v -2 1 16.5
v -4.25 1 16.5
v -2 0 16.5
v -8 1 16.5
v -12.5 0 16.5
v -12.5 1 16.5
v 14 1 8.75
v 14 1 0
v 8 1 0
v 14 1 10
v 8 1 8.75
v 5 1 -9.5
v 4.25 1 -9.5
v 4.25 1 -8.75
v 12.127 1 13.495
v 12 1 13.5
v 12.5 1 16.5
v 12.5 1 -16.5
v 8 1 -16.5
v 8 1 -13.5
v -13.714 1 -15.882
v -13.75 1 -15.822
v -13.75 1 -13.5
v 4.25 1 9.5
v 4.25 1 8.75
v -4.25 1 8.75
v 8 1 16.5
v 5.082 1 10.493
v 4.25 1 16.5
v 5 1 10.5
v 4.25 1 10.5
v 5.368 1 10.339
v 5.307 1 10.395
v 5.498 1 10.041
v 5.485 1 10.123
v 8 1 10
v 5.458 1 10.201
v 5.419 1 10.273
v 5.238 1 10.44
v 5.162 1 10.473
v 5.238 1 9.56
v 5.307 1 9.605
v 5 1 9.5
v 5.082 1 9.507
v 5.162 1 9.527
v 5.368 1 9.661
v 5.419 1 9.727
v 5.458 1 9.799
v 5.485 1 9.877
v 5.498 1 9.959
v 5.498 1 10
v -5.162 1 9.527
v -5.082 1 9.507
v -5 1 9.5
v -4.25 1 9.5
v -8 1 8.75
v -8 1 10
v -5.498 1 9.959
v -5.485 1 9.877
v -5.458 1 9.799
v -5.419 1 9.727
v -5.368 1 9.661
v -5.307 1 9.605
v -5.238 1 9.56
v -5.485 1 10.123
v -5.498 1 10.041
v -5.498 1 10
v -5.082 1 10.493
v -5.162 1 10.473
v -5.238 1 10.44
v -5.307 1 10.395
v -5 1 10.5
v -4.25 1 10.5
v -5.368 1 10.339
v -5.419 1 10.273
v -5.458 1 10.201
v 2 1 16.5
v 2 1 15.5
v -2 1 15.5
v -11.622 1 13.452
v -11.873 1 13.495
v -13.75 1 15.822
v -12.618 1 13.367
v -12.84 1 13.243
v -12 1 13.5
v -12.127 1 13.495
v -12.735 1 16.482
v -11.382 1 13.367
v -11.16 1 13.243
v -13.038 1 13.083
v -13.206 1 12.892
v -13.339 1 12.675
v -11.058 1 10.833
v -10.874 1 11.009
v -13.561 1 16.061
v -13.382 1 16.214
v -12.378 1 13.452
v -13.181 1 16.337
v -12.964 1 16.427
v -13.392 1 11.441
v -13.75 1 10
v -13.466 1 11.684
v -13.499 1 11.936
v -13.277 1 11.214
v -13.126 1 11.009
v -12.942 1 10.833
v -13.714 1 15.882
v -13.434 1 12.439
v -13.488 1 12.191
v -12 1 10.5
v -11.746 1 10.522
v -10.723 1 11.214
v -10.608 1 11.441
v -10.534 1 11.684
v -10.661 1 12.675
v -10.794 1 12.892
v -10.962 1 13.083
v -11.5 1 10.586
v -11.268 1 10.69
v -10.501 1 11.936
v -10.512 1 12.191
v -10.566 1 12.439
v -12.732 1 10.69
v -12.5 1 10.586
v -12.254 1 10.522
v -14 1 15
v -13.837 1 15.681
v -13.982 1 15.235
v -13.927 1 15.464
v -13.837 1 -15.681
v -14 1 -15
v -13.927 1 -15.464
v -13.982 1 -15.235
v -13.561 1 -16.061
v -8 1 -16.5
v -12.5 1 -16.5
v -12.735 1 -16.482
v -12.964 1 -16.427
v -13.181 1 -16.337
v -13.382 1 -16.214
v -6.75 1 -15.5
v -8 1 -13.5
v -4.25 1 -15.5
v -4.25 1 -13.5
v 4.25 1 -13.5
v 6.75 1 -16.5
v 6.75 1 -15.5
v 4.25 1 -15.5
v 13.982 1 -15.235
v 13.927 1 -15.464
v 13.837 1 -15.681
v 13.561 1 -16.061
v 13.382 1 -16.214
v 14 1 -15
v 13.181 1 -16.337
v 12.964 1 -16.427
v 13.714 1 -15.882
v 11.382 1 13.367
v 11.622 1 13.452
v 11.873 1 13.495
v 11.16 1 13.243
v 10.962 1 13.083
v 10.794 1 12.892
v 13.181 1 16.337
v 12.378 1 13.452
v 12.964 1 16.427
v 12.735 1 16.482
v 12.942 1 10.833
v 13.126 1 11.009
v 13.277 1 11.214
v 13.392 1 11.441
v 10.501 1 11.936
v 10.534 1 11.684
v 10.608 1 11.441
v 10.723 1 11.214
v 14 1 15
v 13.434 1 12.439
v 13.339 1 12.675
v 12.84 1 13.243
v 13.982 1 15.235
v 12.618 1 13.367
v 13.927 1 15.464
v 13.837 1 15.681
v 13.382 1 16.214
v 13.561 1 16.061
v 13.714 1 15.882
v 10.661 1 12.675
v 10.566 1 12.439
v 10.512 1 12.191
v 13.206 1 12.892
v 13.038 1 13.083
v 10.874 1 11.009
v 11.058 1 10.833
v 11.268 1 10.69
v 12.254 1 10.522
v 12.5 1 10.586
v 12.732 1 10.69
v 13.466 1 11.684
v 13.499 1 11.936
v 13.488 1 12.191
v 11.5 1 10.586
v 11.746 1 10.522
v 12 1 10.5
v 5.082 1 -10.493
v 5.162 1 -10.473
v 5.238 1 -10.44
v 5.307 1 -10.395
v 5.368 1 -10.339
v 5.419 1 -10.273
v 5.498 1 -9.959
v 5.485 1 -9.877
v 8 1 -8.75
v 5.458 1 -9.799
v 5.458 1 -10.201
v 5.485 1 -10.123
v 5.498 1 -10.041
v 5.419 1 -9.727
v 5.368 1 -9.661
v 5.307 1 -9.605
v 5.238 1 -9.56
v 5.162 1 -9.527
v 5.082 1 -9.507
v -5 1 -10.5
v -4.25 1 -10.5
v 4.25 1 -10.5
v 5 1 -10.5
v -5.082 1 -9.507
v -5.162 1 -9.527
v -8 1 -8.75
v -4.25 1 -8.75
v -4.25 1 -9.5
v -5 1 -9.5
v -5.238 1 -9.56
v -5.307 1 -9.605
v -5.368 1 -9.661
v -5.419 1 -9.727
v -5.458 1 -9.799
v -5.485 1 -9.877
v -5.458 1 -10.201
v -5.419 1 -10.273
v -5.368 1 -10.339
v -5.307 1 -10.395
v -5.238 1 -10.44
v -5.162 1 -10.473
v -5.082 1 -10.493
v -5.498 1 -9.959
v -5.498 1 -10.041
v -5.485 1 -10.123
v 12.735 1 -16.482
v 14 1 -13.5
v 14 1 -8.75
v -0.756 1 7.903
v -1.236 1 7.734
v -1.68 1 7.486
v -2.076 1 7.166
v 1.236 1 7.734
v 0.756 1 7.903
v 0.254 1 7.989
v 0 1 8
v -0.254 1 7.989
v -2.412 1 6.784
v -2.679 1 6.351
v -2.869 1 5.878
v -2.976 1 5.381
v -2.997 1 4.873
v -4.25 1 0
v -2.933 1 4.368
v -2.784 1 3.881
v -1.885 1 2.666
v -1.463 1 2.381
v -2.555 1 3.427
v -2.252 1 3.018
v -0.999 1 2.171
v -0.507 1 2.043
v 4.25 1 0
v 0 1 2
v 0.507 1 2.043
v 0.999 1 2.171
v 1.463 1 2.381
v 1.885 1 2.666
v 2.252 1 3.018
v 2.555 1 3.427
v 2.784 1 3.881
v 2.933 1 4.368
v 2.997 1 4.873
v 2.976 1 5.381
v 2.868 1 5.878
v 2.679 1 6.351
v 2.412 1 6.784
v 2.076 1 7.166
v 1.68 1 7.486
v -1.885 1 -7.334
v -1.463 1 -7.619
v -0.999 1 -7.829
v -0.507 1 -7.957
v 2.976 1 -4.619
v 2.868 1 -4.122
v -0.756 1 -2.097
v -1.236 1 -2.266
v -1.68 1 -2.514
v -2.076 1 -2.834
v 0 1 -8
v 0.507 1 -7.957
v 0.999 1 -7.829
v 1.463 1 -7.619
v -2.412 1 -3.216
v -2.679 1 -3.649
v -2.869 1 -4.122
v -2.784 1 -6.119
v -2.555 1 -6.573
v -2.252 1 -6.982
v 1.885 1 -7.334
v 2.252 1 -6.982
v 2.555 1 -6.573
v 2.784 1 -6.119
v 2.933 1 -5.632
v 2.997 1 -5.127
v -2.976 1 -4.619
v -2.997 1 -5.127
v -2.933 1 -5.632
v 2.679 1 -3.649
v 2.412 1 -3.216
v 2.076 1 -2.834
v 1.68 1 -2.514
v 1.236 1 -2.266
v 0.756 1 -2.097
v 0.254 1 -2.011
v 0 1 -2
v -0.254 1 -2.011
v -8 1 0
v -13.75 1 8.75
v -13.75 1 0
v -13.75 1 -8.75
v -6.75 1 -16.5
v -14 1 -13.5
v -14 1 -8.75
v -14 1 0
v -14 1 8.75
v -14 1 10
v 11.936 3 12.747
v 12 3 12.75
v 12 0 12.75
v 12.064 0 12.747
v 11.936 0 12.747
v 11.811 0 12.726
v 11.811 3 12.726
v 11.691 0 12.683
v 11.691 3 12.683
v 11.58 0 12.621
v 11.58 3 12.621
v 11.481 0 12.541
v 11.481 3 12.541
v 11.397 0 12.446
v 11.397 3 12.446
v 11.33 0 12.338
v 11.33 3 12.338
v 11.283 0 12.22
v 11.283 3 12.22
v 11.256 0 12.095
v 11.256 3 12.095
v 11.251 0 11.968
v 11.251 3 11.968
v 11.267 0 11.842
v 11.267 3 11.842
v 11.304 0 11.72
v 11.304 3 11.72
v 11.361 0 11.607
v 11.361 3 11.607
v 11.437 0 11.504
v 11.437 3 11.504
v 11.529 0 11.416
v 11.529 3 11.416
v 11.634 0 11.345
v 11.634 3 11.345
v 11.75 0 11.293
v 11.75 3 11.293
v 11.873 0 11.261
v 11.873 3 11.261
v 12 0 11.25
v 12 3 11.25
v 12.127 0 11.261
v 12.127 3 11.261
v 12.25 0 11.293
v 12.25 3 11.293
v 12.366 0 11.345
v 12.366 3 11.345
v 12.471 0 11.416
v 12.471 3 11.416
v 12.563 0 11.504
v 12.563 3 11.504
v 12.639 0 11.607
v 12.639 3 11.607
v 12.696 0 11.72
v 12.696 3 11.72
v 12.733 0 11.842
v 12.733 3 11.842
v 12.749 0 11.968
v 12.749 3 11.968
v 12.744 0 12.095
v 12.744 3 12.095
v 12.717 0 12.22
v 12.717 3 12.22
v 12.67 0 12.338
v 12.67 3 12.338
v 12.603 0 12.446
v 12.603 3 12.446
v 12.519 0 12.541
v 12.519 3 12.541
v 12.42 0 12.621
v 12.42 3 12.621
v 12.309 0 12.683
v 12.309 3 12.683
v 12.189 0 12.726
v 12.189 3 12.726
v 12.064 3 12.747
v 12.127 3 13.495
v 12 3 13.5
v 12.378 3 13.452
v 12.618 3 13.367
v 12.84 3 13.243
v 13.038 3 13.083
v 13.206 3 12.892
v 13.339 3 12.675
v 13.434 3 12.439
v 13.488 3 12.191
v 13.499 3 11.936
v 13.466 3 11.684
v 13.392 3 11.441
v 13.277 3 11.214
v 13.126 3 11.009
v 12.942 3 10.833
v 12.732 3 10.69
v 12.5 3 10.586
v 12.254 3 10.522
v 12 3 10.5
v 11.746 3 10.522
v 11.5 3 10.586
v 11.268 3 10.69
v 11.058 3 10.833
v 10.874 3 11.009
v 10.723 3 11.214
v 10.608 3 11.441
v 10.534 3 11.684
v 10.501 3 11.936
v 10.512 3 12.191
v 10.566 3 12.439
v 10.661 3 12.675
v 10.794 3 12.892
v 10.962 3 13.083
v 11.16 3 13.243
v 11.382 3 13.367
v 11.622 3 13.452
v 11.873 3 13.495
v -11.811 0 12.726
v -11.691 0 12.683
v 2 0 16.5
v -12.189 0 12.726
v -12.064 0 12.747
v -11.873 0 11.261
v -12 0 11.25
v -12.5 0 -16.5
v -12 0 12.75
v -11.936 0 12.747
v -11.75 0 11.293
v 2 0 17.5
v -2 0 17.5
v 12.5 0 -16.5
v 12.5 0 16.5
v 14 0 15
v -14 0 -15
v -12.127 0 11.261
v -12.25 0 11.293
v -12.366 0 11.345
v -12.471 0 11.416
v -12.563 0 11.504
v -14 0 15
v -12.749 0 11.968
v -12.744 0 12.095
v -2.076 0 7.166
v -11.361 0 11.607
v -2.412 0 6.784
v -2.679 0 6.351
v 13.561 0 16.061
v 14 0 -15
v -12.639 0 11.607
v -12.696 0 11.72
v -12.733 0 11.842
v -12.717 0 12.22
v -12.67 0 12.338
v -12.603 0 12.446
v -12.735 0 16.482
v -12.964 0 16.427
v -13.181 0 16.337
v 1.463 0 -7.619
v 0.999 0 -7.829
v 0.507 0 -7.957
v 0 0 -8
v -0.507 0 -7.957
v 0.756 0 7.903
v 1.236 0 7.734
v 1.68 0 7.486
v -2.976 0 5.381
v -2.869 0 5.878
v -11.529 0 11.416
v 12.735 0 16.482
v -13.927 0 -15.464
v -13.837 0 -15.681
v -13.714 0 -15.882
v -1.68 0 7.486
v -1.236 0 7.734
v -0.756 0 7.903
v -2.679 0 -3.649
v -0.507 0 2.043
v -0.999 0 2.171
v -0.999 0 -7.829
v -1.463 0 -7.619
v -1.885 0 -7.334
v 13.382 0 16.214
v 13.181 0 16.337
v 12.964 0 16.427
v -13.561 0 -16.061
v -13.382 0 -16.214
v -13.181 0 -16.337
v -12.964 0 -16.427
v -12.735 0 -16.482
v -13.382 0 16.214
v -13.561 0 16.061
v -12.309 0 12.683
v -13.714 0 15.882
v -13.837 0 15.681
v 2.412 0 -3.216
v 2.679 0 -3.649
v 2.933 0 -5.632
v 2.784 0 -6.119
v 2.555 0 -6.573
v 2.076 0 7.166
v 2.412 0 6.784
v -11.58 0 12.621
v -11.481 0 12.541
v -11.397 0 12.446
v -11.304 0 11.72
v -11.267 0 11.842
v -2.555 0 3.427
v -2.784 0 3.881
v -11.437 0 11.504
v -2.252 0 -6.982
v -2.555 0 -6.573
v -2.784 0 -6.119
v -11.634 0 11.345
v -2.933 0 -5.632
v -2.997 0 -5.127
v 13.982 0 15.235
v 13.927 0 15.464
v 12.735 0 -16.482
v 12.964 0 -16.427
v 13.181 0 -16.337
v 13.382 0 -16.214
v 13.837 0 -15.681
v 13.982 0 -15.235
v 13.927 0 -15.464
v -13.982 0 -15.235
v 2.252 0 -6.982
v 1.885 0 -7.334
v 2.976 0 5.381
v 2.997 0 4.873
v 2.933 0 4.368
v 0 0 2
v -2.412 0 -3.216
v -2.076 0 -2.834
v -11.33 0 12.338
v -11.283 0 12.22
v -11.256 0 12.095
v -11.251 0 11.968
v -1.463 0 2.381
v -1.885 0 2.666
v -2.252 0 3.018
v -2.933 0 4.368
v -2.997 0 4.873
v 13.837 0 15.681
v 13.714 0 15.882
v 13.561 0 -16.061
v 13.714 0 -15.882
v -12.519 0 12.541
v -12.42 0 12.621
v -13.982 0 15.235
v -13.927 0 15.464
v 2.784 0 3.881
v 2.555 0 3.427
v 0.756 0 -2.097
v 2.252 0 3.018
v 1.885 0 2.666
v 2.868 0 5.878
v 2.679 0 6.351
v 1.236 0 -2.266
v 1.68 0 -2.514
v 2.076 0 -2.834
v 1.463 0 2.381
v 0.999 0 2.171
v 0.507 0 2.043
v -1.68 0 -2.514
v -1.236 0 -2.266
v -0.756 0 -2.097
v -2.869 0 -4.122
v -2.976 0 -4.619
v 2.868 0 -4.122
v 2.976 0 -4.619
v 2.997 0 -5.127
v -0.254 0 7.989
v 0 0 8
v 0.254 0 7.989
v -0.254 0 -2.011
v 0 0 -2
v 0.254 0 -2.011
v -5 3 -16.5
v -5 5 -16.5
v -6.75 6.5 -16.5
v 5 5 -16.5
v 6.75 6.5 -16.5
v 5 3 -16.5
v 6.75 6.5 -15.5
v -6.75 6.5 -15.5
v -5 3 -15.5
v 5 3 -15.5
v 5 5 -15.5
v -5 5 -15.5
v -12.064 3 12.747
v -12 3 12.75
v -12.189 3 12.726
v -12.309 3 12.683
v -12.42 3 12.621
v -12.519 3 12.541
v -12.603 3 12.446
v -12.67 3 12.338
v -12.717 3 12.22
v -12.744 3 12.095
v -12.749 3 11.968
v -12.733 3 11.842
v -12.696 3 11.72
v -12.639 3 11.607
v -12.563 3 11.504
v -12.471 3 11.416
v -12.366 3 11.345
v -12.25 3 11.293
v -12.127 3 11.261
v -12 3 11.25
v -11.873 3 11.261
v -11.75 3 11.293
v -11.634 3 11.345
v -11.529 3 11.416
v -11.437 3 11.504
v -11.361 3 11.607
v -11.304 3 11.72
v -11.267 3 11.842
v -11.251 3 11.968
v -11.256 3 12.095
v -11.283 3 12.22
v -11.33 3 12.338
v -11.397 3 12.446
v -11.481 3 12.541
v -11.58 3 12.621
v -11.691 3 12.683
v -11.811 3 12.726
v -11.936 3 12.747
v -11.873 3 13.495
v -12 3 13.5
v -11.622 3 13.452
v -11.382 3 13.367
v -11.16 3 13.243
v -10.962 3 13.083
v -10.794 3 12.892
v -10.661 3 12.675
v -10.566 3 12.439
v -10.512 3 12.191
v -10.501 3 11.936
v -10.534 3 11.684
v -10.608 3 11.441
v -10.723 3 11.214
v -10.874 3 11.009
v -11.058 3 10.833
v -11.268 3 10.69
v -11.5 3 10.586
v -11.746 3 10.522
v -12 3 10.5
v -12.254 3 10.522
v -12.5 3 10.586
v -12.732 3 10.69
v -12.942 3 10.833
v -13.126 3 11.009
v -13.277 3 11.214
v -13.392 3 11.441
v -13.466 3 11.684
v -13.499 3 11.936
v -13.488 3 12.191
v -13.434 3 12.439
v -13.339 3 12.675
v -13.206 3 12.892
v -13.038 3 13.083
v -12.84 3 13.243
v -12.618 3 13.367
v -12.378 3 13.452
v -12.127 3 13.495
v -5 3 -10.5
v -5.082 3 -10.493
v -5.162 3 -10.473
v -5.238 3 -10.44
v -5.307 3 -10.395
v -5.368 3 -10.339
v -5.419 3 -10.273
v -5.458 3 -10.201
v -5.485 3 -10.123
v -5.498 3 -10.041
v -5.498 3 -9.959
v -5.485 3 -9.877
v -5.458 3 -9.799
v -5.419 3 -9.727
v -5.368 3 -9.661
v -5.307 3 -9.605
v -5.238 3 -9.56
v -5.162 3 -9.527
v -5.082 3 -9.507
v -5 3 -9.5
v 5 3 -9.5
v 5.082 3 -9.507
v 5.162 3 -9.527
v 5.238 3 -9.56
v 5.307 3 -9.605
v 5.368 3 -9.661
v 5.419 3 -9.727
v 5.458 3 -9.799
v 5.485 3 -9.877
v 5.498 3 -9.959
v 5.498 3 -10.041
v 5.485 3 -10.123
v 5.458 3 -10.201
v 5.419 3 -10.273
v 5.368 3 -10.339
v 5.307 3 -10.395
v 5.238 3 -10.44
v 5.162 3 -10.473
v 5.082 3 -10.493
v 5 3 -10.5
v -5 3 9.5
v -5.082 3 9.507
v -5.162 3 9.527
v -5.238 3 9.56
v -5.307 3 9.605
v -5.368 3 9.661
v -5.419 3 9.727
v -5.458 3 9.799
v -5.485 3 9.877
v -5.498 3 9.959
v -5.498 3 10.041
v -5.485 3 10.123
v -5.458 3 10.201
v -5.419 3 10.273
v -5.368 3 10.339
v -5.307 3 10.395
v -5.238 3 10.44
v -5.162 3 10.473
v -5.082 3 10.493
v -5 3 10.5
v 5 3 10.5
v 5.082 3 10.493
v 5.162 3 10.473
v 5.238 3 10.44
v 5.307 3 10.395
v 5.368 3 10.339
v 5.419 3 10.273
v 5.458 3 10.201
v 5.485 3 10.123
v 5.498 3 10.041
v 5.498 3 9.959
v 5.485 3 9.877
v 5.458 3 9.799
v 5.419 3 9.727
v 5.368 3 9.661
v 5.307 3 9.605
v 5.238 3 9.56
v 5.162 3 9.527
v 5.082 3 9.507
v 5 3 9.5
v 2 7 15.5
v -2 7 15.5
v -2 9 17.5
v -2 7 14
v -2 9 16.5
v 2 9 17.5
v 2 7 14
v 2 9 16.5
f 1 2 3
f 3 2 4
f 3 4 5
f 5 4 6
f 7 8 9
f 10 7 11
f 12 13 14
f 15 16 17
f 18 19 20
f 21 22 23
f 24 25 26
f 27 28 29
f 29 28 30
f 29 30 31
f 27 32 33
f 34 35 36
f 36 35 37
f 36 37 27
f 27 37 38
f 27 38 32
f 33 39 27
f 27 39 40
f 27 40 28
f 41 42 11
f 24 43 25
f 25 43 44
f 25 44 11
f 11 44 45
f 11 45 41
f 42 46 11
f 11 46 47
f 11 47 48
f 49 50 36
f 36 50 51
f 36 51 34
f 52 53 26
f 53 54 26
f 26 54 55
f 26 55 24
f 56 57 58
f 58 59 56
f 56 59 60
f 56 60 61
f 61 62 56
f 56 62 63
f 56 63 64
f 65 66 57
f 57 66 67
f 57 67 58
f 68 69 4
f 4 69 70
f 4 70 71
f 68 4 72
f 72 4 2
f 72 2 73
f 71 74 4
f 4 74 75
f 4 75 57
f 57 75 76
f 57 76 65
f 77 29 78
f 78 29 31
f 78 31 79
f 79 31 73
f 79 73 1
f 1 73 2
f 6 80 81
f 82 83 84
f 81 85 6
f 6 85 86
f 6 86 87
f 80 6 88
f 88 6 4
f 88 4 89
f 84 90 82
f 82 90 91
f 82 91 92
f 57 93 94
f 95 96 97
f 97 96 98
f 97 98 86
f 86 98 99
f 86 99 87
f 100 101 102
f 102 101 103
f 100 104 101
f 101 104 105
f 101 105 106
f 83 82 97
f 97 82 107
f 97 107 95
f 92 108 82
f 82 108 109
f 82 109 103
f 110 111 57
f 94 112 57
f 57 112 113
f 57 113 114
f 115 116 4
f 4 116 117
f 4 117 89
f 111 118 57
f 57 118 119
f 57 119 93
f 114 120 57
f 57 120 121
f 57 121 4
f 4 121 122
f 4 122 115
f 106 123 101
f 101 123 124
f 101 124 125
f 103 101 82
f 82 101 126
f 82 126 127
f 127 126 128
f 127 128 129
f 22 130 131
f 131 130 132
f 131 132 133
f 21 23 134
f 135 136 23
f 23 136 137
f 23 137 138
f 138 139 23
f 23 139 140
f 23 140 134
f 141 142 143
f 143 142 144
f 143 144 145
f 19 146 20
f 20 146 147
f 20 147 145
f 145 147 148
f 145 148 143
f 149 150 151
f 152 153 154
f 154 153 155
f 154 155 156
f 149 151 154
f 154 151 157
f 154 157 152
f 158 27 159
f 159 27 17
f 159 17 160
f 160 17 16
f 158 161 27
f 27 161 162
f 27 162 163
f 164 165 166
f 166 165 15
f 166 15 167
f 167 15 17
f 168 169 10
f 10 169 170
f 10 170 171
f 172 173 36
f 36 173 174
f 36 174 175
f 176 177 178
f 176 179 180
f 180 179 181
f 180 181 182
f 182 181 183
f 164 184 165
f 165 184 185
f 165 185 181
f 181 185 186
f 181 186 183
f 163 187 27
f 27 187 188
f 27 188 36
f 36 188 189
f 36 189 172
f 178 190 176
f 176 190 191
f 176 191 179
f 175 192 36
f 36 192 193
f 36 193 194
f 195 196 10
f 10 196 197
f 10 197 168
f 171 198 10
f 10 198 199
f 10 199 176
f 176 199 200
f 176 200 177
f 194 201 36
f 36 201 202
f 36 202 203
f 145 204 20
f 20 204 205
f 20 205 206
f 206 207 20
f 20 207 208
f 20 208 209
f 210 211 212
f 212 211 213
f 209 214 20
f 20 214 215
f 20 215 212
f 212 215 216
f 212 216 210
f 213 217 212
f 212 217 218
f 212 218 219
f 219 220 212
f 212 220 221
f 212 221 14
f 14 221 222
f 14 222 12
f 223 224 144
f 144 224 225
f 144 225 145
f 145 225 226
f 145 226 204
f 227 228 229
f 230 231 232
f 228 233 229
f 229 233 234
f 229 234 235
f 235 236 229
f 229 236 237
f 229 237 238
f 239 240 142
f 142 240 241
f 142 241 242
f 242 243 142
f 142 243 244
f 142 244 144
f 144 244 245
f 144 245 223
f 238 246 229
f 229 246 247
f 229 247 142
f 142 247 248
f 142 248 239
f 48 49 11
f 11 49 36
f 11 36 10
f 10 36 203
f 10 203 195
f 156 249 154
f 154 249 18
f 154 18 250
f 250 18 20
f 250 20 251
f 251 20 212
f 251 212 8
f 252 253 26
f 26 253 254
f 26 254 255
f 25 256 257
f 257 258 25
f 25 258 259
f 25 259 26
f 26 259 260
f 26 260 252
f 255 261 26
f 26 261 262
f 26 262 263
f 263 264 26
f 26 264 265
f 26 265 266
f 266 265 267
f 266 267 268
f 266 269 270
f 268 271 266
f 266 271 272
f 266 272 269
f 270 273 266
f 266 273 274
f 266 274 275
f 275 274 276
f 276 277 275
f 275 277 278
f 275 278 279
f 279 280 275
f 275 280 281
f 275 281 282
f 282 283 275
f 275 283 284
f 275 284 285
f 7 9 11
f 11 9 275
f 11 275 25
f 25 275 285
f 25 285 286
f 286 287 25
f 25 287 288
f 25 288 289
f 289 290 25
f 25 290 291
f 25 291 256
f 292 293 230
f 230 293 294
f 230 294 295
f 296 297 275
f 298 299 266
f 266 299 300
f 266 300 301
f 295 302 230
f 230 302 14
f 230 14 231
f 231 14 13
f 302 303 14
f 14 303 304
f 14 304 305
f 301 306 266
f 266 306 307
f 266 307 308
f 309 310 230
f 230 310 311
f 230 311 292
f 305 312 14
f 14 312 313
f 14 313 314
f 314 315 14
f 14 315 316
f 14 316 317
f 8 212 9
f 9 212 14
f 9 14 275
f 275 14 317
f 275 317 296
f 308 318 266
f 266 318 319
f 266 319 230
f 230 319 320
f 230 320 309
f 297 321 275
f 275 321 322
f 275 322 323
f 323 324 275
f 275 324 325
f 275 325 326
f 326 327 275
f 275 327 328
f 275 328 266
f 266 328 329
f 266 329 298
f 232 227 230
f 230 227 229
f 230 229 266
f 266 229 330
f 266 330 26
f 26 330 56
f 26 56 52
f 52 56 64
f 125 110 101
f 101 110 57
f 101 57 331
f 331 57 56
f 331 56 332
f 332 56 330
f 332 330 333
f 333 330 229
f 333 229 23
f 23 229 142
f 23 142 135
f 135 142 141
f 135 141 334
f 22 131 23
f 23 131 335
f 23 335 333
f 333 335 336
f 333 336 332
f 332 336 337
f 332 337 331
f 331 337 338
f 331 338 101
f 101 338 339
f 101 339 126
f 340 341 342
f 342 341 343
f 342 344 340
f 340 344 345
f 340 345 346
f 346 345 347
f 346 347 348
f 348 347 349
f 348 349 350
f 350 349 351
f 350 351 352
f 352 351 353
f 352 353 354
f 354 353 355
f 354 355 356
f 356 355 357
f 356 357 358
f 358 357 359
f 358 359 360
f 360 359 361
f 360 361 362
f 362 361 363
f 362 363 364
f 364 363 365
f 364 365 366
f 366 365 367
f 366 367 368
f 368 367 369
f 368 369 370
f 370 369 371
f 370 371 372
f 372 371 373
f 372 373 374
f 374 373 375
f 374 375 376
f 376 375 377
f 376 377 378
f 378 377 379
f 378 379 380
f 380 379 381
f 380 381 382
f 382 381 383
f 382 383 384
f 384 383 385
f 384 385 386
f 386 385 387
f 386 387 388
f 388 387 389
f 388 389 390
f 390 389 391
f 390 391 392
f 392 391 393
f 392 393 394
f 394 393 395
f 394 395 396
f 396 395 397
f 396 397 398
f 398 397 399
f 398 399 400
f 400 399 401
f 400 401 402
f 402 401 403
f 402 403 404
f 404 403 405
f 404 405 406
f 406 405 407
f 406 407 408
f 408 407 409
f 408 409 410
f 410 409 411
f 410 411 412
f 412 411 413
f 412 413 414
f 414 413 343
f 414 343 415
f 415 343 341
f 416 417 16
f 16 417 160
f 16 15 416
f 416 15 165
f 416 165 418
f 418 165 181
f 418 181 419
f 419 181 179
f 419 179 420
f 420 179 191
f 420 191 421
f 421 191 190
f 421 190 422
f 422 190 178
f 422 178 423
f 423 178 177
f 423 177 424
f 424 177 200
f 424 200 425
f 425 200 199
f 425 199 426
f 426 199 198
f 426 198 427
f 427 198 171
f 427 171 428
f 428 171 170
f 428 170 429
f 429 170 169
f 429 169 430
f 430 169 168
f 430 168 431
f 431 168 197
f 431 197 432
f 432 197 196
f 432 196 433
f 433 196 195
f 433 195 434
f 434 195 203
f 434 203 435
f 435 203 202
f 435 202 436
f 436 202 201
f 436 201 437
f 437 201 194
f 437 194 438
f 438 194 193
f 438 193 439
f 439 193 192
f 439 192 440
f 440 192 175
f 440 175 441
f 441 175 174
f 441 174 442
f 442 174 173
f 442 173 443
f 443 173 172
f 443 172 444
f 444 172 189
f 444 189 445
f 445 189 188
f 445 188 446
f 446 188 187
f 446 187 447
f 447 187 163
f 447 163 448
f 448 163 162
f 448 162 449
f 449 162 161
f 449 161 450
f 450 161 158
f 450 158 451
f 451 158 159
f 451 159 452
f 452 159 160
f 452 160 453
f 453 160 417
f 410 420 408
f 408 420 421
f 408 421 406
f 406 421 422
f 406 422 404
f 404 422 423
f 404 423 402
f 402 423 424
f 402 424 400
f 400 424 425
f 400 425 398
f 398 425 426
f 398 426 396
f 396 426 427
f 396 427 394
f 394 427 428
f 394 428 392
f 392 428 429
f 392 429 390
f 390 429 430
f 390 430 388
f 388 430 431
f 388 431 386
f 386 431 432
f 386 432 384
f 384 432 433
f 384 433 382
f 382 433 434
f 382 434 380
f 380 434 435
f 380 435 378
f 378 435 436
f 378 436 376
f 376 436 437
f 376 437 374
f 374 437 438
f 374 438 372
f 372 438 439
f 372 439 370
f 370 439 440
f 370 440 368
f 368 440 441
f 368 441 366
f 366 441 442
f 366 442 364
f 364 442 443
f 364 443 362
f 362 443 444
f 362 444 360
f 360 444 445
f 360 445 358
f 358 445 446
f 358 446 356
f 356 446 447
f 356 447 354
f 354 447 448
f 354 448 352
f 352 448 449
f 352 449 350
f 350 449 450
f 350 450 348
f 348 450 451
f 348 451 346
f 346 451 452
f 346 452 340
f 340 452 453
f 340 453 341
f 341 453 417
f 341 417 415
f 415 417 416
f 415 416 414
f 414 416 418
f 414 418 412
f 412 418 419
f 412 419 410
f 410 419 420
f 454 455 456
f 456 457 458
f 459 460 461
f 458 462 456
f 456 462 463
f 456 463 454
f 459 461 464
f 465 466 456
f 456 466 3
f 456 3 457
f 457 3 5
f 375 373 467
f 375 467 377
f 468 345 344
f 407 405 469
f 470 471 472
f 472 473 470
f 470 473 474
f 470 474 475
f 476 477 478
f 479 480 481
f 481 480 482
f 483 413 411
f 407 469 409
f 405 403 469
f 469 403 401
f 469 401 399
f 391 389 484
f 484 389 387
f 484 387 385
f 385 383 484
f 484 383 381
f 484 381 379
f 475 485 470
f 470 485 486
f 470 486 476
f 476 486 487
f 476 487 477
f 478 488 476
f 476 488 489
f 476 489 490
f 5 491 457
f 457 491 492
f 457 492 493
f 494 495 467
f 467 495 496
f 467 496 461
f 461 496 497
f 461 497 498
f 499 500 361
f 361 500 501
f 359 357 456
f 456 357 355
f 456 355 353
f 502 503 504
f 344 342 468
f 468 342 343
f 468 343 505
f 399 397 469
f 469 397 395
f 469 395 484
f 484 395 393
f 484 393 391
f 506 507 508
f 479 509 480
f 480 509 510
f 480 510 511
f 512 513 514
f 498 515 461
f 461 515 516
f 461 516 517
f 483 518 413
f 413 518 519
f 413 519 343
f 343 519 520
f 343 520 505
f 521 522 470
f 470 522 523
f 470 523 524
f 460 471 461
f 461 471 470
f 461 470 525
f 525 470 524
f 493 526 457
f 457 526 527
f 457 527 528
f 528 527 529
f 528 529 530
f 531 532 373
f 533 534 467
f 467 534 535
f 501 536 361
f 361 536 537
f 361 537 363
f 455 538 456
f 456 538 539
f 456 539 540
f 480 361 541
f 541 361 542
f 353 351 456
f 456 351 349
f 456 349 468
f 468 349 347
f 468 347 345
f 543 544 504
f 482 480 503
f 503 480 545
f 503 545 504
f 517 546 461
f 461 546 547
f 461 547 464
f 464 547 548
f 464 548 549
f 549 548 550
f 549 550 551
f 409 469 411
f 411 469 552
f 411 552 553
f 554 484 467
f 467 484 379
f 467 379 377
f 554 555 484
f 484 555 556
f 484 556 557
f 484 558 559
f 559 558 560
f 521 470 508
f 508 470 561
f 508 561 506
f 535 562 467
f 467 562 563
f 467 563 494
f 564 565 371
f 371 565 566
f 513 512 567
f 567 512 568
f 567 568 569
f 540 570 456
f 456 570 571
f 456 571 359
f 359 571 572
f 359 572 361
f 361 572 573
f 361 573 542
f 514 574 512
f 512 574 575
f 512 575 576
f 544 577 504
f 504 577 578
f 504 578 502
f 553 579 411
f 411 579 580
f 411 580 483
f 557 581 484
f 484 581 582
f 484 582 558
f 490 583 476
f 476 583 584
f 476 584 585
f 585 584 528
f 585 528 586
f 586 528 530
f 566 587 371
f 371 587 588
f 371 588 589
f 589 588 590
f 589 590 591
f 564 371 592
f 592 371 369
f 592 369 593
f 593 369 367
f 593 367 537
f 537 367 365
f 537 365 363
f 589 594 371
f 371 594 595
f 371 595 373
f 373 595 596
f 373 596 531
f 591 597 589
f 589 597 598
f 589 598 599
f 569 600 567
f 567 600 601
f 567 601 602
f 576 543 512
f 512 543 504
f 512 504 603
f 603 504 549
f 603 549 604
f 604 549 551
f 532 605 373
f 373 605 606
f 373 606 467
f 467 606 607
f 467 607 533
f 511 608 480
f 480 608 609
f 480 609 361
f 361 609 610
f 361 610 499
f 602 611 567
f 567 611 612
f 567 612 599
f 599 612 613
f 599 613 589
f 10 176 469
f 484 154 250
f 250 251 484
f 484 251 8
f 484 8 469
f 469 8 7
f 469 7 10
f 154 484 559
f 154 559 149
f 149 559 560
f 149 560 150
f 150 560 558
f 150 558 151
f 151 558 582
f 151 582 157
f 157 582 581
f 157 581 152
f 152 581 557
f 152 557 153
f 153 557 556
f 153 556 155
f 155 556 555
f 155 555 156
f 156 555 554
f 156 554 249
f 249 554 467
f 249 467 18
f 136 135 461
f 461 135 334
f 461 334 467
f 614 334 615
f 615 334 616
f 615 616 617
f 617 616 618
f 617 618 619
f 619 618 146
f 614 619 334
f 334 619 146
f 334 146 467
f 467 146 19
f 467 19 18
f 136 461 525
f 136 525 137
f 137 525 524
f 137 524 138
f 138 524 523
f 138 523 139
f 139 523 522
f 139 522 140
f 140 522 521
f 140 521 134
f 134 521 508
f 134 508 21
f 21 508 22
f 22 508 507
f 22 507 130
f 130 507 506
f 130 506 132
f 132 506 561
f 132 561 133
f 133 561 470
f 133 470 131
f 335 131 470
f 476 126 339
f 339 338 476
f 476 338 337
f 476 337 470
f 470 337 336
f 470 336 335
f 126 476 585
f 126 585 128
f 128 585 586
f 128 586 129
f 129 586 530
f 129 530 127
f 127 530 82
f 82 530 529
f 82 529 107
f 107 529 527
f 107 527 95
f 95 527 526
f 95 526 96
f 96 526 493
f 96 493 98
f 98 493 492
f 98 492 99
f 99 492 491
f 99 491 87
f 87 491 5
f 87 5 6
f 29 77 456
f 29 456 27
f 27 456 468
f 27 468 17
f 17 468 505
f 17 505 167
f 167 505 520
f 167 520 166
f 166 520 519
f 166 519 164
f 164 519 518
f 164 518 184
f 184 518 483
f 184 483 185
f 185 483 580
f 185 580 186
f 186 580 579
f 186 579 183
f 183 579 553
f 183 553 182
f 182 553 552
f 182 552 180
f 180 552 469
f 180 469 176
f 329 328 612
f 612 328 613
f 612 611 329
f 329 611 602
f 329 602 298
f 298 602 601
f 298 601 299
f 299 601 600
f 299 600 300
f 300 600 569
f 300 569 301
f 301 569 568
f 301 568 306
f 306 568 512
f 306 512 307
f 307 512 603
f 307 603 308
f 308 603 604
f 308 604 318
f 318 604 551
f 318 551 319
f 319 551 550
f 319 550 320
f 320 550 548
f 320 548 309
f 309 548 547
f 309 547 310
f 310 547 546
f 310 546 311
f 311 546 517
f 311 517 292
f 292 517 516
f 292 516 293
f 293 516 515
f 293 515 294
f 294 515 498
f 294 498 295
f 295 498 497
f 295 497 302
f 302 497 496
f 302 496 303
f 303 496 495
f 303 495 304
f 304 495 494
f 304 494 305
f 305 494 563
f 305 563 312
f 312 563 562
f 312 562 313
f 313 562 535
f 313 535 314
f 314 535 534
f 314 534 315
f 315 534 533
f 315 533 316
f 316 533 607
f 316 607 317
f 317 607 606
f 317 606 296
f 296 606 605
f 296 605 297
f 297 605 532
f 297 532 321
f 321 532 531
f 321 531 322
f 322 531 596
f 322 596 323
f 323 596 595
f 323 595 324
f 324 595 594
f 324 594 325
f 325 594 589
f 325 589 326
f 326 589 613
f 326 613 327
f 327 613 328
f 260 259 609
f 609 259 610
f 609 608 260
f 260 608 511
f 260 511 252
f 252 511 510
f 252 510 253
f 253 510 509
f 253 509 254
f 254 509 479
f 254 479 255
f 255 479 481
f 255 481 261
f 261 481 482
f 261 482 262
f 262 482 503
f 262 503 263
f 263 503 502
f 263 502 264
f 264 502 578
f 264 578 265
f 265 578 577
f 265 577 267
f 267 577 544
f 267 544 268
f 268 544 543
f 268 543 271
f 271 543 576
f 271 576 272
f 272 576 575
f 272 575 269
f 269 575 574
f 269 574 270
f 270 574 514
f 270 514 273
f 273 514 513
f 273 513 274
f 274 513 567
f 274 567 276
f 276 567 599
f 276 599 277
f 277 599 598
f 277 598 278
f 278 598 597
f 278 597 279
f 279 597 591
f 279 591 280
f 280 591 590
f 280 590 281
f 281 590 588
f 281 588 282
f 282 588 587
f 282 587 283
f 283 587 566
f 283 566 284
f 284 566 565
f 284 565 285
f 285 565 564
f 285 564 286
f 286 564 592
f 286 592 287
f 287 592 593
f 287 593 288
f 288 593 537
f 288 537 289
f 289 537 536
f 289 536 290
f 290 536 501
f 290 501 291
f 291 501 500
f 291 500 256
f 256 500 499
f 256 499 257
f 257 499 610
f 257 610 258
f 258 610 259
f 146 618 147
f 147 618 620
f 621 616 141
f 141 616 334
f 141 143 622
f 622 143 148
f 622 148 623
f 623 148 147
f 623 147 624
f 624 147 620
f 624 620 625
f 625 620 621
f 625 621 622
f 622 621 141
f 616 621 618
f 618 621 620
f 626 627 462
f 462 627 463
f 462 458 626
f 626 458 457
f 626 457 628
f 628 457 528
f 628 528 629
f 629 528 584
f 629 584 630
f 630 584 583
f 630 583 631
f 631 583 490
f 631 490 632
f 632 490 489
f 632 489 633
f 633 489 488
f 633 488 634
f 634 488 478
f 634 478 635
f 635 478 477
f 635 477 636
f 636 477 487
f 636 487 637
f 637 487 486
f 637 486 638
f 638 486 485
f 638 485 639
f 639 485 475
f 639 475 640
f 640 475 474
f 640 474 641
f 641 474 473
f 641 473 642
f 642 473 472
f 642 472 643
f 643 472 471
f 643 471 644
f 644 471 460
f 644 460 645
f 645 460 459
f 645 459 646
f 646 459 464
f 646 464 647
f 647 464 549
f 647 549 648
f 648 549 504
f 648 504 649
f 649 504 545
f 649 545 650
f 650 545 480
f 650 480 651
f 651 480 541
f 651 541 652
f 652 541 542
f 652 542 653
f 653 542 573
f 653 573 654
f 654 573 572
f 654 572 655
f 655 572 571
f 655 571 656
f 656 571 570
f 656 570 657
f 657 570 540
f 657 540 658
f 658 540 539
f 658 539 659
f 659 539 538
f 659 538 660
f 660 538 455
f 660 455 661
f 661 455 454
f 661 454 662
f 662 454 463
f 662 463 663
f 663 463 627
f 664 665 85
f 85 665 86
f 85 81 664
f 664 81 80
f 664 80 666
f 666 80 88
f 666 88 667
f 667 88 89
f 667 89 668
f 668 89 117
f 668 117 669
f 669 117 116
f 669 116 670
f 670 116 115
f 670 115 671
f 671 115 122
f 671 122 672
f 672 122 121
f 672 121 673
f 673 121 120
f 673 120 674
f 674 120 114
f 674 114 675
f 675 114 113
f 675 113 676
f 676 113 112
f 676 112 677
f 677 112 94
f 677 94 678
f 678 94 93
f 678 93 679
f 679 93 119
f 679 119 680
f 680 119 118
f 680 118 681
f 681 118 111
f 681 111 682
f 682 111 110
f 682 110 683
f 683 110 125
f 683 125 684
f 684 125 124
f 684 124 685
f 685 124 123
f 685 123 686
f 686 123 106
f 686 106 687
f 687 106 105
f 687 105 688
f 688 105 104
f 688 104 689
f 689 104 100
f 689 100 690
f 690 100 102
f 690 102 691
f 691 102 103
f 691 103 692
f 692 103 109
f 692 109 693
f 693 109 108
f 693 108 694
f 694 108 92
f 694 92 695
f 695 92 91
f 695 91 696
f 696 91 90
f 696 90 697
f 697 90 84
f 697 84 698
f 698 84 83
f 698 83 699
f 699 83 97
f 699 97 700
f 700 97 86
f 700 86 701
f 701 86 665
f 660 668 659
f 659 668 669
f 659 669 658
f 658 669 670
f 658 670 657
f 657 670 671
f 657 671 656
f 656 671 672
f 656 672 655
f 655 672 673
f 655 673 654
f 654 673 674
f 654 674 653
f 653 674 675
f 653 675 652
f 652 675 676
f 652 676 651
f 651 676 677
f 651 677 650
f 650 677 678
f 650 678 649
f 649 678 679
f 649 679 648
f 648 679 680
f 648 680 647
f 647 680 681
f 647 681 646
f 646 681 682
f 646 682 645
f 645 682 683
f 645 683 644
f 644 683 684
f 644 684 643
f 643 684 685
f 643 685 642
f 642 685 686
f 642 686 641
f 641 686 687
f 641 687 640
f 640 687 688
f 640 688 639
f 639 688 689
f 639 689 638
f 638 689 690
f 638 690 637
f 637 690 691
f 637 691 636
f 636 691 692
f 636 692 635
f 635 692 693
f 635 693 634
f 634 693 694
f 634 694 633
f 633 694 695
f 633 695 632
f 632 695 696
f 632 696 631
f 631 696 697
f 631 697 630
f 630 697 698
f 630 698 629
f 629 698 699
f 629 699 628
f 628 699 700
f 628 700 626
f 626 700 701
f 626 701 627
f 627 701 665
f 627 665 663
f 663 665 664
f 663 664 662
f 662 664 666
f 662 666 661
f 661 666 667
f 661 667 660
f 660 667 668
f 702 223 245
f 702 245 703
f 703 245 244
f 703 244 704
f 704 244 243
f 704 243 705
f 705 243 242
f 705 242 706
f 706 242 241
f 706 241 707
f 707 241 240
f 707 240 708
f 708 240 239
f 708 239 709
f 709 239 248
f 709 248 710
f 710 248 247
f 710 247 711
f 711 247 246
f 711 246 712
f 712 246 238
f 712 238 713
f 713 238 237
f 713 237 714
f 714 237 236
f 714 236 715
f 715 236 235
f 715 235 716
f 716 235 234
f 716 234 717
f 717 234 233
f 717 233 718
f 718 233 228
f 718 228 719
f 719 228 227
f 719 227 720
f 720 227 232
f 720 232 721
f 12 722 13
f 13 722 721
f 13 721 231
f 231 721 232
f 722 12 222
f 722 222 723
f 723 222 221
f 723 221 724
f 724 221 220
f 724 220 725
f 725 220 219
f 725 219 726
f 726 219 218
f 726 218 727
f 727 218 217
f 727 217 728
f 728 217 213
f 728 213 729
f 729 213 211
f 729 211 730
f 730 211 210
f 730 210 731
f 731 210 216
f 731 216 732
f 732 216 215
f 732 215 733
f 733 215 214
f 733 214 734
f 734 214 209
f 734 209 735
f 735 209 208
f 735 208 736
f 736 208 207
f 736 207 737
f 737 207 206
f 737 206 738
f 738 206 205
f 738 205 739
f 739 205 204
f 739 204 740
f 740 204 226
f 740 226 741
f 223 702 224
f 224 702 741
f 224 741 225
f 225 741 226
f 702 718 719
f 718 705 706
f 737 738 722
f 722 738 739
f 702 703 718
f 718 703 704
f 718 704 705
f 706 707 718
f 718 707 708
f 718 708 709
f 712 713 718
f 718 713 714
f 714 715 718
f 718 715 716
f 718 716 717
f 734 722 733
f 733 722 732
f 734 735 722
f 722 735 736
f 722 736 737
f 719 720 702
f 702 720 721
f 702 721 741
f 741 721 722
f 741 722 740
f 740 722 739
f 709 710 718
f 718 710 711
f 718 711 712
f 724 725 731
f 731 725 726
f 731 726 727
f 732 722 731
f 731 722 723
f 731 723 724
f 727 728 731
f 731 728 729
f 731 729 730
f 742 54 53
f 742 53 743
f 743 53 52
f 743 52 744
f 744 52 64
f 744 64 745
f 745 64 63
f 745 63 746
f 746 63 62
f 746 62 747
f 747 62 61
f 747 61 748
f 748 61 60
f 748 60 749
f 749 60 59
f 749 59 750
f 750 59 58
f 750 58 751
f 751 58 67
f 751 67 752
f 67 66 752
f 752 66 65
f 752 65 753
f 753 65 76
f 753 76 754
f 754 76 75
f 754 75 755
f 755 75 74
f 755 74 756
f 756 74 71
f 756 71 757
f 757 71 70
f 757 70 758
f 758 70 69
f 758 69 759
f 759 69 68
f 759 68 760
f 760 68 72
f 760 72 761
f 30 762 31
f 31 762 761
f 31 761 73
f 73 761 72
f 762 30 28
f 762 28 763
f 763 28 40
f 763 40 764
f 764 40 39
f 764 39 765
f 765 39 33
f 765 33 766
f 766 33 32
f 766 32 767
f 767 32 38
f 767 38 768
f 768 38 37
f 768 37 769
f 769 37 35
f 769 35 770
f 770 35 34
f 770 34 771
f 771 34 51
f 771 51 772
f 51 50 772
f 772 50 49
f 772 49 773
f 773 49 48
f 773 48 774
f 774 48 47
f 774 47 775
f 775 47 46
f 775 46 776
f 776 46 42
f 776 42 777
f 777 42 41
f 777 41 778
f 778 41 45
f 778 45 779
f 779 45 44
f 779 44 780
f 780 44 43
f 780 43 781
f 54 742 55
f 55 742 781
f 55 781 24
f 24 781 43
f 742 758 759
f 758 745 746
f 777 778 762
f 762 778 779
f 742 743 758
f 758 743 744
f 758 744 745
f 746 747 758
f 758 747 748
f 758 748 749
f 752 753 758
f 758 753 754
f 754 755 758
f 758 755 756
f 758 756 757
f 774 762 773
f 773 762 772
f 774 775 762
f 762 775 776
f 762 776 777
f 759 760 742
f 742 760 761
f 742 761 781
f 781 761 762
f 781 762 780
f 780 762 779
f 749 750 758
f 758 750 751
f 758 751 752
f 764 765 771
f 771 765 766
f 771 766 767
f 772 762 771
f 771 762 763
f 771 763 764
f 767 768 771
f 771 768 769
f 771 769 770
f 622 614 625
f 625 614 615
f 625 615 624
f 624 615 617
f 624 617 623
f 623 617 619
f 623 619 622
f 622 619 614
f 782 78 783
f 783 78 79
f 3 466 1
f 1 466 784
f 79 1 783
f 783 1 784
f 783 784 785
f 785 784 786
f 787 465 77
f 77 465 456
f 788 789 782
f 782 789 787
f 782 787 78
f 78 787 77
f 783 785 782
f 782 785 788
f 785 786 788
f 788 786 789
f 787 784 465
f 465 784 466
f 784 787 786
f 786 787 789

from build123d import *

# Parameters (mm, degrees)
BASE_4_R              = 1.5
BASE_4_R_2            = 0.75
BOSS_EXTRUDE5_DEPTH   = 3
BOSS_EXTRUDE5_2_DEPTH = 3
BASE_W                = 13.5
BASE_H                = 1
BOSS_EXTRUDE7_DEPTH   = 6.5
BASE_7_R              = 1.5
BASE_7_R_2            = 3
BOSS_EXTRUDE8_DEPTH   = 1
BOSS_EXTRUDE9_DEPTH   = 3
SLIT_W                = 10
SLIT_H                = 2
CUT_EXTRUDE2_DEPTH    = 6.5
BASE_13_W             = 4
BASE_13_H             = 1
BOSS_EXTRUDE12_DEPTH  = 9
BOSS_EXTRUDE13_DEPTH  = 4
CUT_EXTRUDE3_DEPTH    = 4
BASE_14_W             = 4
BASE_14_H             = 1
BOSS_EXTRUDE14_DEPTH  = 9


with BuildPart() as part:
    # Base<4> → Boss-Extrude5 (new body)
    with BuildSketch(Plane(origin=(0, 0, 0), x_dir=(1, 0, 0), z_dir=(0, 1, 0))):
        with Locations((-12, -12)):
            Circle(BASE_4_R)
        with Locations((-12, -12)):
            Circle(BASE_4_R_2, mode=Mode.SUBTRACT)
    extrude(amount=BOSS_EXTRUDE5_DEPTH)



with BuildPart() as body_2:
    # Base<4> → Boss-Extrude5 2 (new body)
    with BuildSketch(Plane(origin=(0, 0, 0), x_dir=(1, 0, 0), z_dir=(0, 1, 0))):
        with Locations((12, -12)):
            Circle(BASE_4_R)
        with Locations((12, -12)):
            Circle(BASE_4_R_2, mode=Mode.SUBTRACT)
    extrude(amount=BOSS_EXTRUDE5_2_DEPTH)


with BuildPart() as body_3:
    # Base → Boss-Extrude7 (new body)
    with BuildSketch(Plane(origin=(0, 0, 0), x_dir=(1, 0, 0), z_dir=(0, 1, 0))):
        with Locations((0, 16)):
            Rectangle(BASE_W, BASE_H)
    extrude(amount=BOSS_EXTRUDE7_DEPTH)


with BuildPart() as part_1:
    add(part.part)

    add(body_2.part)  # Boss-Extrude8 merges body 2

    add(body_3.part)  # Boss-Extrude8 merges body 3
    # Base<7> → Boss-Extrude8 (add)
    with BuildSketch(Plane(origin=(0, 0, 0), x_dir=(1, 0, 0), z_dir=(0, 1, 0))):
        with BuildLine():
            ThreePointArc((14, 15), (13.560660172, 16.060660172), (12.5, 16.5))
            Line((12.5, 16.5), (6.75, 16.5))
            Line((6.75, 16.5), (6.75, 15.5))
            Line((6.75, 15.5), (-6.75, 15.5))
            Line((-6.75, 15.5), (-6.75, 16.5))
            Line((-6.75, 16.5), (-12.5, 16.5))
            ThreePointArc((-12.5, 16.5), (-13.560660172, 16.060660172), (-14, 15))
            Line((-14, 15), (-14, -15))
            ThreePointArc((-14, -15), (-13.560660172, -16.060660172), (-12.5, -16.5))
            Line((-12.5, -16.5), (-2, -16.5))
            Line((-2, -16.5), (-2, -15.5))
            Line((-2, -15.5), (2, -15.5))
            Line((2, -15.5), (2, -16.5))
            Line((2, -16.5), (12.5, -16.5))
            ThreePointArc((12.5, -16.5), (13.560660172, -16.060660172), (14, -15))
            Line((14, -15), (14, 15))
        make_face()
        with Locations((-12, -12)):
            Circle(BASE_7_R, mode=Mode.SUBTRACT)
        with Locations((0, -5)):
            Circle(BASE_7_R_2, mode=Mode.SUBTRACT)
        with Locations((12, -12)):
            Circle(BASE_7_R, mode=Mode.SUBTRACT)
        with Locations((0, 5)):
            Circle(BASE_7_R_2, mode=Mode.SUBTRACT)
    extrude(amount=BOSS_EXTRUDE8_DEPTH)

    # Base<8> → Boss-Extrude9 (add)
    with BuildSketch(Plane(origin=(0, 0, 0), x_dir=(1, 0, 0), z_dir=(0, 1, 0))):
        with BuildLine():
            Line((-5, -9.5), (5, -9.5))
            ThreePointArc((5, -9.5), (5.5, -10), (5, -10.5))
            Line((5, -10.5), (-5, -10.5))
            ThreePointArc((-5, -10.5), (-5.5, -10), (-5, -9.5))
        make_face()
        with BuildLine():
            Line((-5, 10.5), (5, 10.5))
            ThreePointArc((5, 10.5), (5.5, 10), (5, 9.5))
            Line((5, 9.5), (-5, 9.5))
            ThreePointArc((-5, 9.5), (-5.5, 10), (-5, 10.5))
        make_face()
    extrude(amount=BOSS_EXTRUDE9_DEPTH)

    # slit → Cut-Extrude2 (cut)
    with BuildSketch(Plane.XY.offset(-15.5)):
        with Locations((0, 4)):
            Rectangle(SLIT_W, SLIT_H)
    extrude(amount=-CUT_EXTRUDE2_DEPTH, mode=Mode.SUBTRACT)

    # Base<13> → Boss-Extrude12 (add)
    with BuildSketch(Plane(origin=(0, 0, 0), x_dir=(1, 0, 0), z_dir=(0, 1, 0))):
        with Locations((0, -16)):
            Rectangle(BASE_13_W, BASE_13_H)
    extrude(amount=BOSS_EXTRUDE12_DEPTH)

    # Sketch3 → Boss-Extrude13 (add)
    with BuildSketch(Plane(origin=(2, 0, 0), x_dir=(0, 0, -1), z_dir=(1, 0, 0))):
        Polygon((-15.5, 7), (-14, 7), (-15.5, 9), align=None)
    extrude(amount=-BOSS_EXTRUDE13_DEPTH)

    # Sketch4 → Cut-Extrude3 (cut)
    with BuildSketch(Plane(origin=(2, 0, 0), x_dir=(0, 0, -1), z_dir=(1, 0, 0))):
        Polygon((-14, 7), (-16.5, 9), (-13.837162957, 9), align=None)
    extrude(amount=-CUT_EXTRUDE3_DEPTH, mode=Mode.SUBTRACT)

    # Base<14> → Boss-Extrude14 (add)
    with BuildSketch(Plane(origin=(0, 0, 0), x_dir=(1, 0, 0), z_dir=(0, 1, 0))):
        with Locations((0, -17)):
            Rectangle(BASE_14_W, BASE_14_H)
    extrude(amount=BOSS_EXTRUDE14_DEPTH)


solid = part_1.part
